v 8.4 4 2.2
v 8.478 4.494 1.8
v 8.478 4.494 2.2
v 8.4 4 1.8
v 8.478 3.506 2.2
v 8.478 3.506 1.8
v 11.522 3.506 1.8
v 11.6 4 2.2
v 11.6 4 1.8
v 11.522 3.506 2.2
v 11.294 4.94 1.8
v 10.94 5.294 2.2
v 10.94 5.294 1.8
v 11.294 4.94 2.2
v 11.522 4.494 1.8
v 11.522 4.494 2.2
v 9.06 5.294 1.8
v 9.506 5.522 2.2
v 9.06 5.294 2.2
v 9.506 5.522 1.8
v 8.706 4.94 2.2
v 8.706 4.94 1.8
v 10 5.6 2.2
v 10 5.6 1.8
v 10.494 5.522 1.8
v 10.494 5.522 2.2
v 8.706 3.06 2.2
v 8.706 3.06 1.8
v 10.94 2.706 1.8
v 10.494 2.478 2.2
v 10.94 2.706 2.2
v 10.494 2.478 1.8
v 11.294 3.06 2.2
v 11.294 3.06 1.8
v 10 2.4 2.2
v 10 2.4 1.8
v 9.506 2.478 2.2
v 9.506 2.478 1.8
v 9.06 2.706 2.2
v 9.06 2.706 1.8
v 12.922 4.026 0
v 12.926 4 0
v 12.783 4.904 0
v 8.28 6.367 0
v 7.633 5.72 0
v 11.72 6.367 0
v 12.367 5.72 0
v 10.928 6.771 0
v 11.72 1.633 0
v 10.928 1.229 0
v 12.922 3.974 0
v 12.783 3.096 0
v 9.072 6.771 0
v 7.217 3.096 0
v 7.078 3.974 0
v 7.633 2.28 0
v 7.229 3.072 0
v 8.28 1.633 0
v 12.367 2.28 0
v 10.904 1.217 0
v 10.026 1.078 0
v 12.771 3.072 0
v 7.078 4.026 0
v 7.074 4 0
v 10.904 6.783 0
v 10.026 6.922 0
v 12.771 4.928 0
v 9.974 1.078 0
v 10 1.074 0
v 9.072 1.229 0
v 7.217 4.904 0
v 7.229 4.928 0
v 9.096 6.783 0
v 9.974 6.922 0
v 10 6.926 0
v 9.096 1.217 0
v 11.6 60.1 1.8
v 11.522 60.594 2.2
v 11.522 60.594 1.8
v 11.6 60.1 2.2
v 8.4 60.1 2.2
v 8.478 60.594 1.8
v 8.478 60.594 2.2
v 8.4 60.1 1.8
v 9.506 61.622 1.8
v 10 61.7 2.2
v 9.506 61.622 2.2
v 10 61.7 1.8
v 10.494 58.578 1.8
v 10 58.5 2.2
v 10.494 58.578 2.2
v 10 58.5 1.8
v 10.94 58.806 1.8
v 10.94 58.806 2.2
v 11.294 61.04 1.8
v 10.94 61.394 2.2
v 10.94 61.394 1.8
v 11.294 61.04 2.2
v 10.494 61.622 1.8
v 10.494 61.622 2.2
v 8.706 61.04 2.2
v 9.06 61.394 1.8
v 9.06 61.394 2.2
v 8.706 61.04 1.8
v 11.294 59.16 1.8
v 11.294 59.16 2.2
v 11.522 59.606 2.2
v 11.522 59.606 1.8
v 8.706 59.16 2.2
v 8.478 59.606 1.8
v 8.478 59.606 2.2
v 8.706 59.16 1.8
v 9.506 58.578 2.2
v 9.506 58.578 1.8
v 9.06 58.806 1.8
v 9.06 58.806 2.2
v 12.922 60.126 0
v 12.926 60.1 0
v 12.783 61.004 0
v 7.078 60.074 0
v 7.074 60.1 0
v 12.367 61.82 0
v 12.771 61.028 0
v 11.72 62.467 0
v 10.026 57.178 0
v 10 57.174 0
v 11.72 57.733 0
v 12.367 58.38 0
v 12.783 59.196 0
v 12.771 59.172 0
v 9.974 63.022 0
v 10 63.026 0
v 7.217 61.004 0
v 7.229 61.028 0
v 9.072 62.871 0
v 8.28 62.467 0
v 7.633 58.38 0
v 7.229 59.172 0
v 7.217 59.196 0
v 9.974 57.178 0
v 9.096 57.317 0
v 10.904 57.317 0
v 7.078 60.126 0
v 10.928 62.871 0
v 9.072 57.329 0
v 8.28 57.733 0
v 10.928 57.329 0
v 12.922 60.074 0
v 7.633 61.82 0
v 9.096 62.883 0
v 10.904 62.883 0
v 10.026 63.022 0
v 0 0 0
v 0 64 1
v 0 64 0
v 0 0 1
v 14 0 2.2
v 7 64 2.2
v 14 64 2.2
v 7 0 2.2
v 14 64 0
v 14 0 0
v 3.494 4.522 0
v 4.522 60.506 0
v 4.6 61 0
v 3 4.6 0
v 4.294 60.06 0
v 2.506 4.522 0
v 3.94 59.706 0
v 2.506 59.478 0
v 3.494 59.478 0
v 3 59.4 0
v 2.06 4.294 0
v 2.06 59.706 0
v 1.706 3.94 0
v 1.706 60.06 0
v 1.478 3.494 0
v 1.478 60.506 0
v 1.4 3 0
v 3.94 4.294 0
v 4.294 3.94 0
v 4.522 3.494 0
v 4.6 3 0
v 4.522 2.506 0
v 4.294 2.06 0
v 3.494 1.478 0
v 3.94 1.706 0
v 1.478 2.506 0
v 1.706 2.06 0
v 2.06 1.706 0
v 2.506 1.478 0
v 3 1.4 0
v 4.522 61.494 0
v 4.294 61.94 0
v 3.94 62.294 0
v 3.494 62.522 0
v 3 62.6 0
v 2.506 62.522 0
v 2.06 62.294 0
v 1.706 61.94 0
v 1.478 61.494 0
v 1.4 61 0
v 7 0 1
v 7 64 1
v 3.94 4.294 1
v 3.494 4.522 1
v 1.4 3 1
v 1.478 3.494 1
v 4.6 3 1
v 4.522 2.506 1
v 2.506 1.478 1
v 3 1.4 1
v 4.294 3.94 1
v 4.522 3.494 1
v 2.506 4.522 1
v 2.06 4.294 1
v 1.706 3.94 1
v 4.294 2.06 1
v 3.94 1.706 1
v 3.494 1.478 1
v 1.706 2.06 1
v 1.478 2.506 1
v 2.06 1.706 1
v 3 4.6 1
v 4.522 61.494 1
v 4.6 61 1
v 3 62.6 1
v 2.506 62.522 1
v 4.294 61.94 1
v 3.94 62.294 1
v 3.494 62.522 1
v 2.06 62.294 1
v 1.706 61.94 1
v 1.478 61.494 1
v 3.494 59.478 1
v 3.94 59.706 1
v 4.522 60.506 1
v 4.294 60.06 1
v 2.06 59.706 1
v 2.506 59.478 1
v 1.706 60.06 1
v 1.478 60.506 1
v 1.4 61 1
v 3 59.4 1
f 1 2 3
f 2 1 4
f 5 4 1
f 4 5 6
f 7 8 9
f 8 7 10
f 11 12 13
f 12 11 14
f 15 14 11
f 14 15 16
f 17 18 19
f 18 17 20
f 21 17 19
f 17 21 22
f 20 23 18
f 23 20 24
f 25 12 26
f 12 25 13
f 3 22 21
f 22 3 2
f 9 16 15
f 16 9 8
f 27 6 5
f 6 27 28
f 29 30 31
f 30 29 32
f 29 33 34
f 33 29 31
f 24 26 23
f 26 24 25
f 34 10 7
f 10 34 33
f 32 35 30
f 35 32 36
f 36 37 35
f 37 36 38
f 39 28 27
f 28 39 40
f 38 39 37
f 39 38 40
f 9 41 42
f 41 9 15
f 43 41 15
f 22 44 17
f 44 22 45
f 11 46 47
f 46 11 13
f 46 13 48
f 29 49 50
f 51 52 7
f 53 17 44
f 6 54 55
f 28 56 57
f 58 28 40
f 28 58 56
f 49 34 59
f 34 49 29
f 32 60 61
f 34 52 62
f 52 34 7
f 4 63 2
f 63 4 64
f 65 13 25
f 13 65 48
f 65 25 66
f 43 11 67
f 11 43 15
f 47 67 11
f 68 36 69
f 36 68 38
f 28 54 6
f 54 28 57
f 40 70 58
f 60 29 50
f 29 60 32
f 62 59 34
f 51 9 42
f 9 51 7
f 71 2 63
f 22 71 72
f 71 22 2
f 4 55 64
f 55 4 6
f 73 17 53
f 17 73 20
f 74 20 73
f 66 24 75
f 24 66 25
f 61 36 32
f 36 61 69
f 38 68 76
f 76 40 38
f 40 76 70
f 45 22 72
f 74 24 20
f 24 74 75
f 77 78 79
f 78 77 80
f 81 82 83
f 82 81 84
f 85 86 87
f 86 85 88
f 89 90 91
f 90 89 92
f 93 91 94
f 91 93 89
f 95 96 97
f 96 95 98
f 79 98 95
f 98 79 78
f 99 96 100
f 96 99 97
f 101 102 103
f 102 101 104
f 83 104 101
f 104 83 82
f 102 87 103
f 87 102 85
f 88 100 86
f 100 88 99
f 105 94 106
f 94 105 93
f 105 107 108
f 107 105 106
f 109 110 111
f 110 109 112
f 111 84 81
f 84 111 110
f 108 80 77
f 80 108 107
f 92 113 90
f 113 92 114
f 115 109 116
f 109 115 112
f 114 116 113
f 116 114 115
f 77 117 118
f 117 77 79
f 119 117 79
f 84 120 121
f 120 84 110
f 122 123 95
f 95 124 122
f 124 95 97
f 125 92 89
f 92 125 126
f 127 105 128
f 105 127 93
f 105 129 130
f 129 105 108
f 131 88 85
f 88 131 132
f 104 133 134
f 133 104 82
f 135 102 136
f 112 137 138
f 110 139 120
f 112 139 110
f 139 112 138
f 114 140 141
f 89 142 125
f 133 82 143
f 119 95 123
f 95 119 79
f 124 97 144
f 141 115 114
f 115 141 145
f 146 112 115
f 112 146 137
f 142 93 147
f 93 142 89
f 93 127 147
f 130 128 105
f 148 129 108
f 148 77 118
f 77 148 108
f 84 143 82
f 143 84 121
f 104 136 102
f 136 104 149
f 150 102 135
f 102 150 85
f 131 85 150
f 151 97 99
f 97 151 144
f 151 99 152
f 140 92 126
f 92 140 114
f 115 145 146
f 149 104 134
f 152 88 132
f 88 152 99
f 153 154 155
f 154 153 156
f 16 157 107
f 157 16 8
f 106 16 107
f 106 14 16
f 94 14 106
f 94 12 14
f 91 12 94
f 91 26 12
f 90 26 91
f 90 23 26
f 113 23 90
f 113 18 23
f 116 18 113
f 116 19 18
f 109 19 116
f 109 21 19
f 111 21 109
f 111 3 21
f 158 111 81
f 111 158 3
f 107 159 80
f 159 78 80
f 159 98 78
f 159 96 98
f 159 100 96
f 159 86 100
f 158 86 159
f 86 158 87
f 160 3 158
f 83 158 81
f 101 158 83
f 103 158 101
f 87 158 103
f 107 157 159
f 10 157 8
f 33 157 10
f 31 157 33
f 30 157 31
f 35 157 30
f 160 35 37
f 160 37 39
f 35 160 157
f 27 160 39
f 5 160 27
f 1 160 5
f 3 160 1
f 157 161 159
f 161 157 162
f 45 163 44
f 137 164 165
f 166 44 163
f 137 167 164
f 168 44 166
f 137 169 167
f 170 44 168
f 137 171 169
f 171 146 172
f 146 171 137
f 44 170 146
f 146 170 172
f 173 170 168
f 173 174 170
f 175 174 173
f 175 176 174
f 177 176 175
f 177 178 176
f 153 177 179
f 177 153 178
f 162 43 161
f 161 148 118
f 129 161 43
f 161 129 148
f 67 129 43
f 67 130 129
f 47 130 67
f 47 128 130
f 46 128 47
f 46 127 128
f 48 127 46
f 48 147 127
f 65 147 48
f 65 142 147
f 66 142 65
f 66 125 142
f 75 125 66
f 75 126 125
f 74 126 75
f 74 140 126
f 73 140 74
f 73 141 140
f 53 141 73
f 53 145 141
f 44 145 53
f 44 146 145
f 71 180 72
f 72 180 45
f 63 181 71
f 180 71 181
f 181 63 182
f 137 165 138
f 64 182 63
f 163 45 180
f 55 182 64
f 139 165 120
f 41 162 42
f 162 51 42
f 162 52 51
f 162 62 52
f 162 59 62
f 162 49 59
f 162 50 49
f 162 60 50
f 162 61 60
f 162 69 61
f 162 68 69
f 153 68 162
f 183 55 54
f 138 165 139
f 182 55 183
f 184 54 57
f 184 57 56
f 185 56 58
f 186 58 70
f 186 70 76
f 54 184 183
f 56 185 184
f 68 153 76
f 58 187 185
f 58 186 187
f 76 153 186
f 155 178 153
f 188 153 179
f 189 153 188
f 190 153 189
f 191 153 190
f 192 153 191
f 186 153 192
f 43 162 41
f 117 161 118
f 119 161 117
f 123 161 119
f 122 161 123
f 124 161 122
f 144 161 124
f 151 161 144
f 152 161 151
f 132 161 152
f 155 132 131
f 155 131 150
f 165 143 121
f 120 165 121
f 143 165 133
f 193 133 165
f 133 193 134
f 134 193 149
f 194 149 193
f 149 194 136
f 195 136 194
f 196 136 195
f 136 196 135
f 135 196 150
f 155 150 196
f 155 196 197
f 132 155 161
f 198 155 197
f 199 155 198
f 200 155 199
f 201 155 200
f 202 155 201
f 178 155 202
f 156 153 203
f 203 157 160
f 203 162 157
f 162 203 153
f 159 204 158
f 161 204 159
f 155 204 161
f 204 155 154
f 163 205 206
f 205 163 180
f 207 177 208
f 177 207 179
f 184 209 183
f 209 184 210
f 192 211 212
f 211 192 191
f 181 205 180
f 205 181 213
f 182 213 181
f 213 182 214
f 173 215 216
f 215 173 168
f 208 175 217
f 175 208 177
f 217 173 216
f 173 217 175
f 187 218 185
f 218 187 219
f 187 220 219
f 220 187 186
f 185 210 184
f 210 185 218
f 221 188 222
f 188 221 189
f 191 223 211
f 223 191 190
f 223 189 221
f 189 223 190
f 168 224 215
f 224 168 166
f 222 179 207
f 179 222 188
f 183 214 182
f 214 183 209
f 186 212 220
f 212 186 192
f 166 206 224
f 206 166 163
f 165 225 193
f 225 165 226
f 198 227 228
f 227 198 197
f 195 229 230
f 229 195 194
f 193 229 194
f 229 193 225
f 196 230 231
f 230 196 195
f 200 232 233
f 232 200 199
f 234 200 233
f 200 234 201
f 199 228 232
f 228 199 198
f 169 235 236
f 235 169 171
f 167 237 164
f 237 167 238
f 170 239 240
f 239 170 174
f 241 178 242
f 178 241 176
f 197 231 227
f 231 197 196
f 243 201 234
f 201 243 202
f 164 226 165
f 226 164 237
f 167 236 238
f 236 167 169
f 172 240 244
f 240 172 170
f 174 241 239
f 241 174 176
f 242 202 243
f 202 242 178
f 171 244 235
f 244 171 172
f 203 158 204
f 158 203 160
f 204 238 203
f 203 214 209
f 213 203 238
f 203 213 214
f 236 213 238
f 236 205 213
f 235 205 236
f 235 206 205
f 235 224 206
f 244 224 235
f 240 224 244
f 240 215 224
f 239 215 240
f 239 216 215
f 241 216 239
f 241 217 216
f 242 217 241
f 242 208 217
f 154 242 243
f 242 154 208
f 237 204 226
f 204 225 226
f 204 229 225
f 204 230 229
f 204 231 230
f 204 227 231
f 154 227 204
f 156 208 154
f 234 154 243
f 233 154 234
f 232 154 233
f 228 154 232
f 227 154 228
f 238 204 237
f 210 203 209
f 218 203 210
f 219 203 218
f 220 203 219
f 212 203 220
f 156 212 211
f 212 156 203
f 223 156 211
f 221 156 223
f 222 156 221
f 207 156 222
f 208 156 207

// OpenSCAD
w = 14;

module adapter() {
    difference() {
        cube([w,64,2.2]);
        translate([3,3,-0.1]) cylinder(d=3.2,h=5,$fn=20);
        translate([3,3+58,-0.1]) cylinder(d=3.2,h=5,$fn=20);
        translate([0,0,1]) cube([w/2,64,2]);

        translate([w-4,4,-0.1]) {
            cylinder(d=3.2,h=5,$fn=20);
            cylinder(d1=6,d2=3.2,h=1.9,$fn=20);
        }
        translate([w-4,4+(61.7-2*2.8),-0.1]) {
            cylinder(d=3.2,h=5,$fn=20);
            cylinder(d1=6,d2=3.2,h=1.9,$fn=20);
        }

    }
}

adapter();
